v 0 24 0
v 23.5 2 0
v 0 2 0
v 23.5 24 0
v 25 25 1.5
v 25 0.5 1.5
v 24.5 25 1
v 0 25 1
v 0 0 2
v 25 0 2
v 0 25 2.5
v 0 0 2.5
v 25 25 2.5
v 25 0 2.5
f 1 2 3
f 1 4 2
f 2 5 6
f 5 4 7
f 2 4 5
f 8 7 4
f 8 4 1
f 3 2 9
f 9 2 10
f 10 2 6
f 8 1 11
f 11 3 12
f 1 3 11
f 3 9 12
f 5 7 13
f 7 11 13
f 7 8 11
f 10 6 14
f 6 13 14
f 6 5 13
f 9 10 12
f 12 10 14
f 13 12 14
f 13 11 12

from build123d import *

# Parameters (mm, degrees)
SKETCH_W        = 25
SKETCH_H        = 25
PAD_DEPTH       = 2.5
CHAMFER_SIZE    = 2
CHAMFER001_SIZE = 1.5
CHAMFER002_SIZE = 1


with BuildPart() as part:
    # Sketch → Pad (new body)
    with BuildSketch(Plane.XY):
        with Locations((12.5, 12.5)):
            Rectangle(SKETCH_W, SKETCH_H)
    extrude(amount=PAD_DEPTH)

    # Chamfer
    chamfer_edges = [part.edges().sort_by_distance(p)[0] for p in [
        (12.5, 0, 0),
    ]]
    chamfer(chamfer_edges, length=CHAMFER_SIZE)

    # Chamfer001
    chamfer001_edges = [part.edges().sort_by_distance(p)[0] for p in [
        (25, 13.5, 0),
    ]]
    chamfer(chamfer001_edges, length=CHAMFER001_SIZE)

    # Chamfer002
    chamfer002_edges = [part.edges().sort_by_distance(p)[0] for p in [
        (11.75, 25, 0),
    ]]
    chamfer(chamfer002_edges, length=CHAMFER002_SIZE)


solid = part.part
